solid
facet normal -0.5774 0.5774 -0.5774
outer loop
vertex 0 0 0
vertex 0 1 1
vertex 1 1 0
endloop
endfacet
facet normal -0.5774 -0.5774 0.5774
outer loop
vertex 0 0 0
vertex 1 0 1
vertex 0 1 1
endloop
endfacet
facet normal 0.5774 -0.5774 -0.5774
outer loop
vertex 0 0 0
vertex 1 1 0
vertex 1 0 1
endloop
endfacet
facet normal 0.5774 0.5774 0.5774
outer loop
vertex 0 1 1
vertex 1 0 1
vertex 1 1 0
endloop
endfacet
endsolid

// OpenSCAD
// file: common.scad
module layout(rows=1, scale=2) {
    for (child = [0:$children-1]) {
        x = floor(child / rows);
        y = child % rows;
        translate([x*scale, y*scale, 0]) children(child);
    }
}

// Avoid non-triangular faces (i.e. squares on a cube).
// Those can be triangulated in multiple ways, which makes
// comparison against a reference object harder.
module tetra() {
    polyhedron(
        [[0, 0, 0], [0, 1, 1], [1, 0, 1], [1, 1, 0]],
        [[0, 1, 2], [0, 2, 3], [0, 3, 1], [1, 3, 2]]
    );
}

tetra();
// main file
use <common.scad>

// As of v0.4.1, no geometry is produced.
// This should be fixed in a future version (expected color is red).
echo("This produces no output yet, so a warning from ColorSCAD is expected");
color("red") color("green") tetra();
